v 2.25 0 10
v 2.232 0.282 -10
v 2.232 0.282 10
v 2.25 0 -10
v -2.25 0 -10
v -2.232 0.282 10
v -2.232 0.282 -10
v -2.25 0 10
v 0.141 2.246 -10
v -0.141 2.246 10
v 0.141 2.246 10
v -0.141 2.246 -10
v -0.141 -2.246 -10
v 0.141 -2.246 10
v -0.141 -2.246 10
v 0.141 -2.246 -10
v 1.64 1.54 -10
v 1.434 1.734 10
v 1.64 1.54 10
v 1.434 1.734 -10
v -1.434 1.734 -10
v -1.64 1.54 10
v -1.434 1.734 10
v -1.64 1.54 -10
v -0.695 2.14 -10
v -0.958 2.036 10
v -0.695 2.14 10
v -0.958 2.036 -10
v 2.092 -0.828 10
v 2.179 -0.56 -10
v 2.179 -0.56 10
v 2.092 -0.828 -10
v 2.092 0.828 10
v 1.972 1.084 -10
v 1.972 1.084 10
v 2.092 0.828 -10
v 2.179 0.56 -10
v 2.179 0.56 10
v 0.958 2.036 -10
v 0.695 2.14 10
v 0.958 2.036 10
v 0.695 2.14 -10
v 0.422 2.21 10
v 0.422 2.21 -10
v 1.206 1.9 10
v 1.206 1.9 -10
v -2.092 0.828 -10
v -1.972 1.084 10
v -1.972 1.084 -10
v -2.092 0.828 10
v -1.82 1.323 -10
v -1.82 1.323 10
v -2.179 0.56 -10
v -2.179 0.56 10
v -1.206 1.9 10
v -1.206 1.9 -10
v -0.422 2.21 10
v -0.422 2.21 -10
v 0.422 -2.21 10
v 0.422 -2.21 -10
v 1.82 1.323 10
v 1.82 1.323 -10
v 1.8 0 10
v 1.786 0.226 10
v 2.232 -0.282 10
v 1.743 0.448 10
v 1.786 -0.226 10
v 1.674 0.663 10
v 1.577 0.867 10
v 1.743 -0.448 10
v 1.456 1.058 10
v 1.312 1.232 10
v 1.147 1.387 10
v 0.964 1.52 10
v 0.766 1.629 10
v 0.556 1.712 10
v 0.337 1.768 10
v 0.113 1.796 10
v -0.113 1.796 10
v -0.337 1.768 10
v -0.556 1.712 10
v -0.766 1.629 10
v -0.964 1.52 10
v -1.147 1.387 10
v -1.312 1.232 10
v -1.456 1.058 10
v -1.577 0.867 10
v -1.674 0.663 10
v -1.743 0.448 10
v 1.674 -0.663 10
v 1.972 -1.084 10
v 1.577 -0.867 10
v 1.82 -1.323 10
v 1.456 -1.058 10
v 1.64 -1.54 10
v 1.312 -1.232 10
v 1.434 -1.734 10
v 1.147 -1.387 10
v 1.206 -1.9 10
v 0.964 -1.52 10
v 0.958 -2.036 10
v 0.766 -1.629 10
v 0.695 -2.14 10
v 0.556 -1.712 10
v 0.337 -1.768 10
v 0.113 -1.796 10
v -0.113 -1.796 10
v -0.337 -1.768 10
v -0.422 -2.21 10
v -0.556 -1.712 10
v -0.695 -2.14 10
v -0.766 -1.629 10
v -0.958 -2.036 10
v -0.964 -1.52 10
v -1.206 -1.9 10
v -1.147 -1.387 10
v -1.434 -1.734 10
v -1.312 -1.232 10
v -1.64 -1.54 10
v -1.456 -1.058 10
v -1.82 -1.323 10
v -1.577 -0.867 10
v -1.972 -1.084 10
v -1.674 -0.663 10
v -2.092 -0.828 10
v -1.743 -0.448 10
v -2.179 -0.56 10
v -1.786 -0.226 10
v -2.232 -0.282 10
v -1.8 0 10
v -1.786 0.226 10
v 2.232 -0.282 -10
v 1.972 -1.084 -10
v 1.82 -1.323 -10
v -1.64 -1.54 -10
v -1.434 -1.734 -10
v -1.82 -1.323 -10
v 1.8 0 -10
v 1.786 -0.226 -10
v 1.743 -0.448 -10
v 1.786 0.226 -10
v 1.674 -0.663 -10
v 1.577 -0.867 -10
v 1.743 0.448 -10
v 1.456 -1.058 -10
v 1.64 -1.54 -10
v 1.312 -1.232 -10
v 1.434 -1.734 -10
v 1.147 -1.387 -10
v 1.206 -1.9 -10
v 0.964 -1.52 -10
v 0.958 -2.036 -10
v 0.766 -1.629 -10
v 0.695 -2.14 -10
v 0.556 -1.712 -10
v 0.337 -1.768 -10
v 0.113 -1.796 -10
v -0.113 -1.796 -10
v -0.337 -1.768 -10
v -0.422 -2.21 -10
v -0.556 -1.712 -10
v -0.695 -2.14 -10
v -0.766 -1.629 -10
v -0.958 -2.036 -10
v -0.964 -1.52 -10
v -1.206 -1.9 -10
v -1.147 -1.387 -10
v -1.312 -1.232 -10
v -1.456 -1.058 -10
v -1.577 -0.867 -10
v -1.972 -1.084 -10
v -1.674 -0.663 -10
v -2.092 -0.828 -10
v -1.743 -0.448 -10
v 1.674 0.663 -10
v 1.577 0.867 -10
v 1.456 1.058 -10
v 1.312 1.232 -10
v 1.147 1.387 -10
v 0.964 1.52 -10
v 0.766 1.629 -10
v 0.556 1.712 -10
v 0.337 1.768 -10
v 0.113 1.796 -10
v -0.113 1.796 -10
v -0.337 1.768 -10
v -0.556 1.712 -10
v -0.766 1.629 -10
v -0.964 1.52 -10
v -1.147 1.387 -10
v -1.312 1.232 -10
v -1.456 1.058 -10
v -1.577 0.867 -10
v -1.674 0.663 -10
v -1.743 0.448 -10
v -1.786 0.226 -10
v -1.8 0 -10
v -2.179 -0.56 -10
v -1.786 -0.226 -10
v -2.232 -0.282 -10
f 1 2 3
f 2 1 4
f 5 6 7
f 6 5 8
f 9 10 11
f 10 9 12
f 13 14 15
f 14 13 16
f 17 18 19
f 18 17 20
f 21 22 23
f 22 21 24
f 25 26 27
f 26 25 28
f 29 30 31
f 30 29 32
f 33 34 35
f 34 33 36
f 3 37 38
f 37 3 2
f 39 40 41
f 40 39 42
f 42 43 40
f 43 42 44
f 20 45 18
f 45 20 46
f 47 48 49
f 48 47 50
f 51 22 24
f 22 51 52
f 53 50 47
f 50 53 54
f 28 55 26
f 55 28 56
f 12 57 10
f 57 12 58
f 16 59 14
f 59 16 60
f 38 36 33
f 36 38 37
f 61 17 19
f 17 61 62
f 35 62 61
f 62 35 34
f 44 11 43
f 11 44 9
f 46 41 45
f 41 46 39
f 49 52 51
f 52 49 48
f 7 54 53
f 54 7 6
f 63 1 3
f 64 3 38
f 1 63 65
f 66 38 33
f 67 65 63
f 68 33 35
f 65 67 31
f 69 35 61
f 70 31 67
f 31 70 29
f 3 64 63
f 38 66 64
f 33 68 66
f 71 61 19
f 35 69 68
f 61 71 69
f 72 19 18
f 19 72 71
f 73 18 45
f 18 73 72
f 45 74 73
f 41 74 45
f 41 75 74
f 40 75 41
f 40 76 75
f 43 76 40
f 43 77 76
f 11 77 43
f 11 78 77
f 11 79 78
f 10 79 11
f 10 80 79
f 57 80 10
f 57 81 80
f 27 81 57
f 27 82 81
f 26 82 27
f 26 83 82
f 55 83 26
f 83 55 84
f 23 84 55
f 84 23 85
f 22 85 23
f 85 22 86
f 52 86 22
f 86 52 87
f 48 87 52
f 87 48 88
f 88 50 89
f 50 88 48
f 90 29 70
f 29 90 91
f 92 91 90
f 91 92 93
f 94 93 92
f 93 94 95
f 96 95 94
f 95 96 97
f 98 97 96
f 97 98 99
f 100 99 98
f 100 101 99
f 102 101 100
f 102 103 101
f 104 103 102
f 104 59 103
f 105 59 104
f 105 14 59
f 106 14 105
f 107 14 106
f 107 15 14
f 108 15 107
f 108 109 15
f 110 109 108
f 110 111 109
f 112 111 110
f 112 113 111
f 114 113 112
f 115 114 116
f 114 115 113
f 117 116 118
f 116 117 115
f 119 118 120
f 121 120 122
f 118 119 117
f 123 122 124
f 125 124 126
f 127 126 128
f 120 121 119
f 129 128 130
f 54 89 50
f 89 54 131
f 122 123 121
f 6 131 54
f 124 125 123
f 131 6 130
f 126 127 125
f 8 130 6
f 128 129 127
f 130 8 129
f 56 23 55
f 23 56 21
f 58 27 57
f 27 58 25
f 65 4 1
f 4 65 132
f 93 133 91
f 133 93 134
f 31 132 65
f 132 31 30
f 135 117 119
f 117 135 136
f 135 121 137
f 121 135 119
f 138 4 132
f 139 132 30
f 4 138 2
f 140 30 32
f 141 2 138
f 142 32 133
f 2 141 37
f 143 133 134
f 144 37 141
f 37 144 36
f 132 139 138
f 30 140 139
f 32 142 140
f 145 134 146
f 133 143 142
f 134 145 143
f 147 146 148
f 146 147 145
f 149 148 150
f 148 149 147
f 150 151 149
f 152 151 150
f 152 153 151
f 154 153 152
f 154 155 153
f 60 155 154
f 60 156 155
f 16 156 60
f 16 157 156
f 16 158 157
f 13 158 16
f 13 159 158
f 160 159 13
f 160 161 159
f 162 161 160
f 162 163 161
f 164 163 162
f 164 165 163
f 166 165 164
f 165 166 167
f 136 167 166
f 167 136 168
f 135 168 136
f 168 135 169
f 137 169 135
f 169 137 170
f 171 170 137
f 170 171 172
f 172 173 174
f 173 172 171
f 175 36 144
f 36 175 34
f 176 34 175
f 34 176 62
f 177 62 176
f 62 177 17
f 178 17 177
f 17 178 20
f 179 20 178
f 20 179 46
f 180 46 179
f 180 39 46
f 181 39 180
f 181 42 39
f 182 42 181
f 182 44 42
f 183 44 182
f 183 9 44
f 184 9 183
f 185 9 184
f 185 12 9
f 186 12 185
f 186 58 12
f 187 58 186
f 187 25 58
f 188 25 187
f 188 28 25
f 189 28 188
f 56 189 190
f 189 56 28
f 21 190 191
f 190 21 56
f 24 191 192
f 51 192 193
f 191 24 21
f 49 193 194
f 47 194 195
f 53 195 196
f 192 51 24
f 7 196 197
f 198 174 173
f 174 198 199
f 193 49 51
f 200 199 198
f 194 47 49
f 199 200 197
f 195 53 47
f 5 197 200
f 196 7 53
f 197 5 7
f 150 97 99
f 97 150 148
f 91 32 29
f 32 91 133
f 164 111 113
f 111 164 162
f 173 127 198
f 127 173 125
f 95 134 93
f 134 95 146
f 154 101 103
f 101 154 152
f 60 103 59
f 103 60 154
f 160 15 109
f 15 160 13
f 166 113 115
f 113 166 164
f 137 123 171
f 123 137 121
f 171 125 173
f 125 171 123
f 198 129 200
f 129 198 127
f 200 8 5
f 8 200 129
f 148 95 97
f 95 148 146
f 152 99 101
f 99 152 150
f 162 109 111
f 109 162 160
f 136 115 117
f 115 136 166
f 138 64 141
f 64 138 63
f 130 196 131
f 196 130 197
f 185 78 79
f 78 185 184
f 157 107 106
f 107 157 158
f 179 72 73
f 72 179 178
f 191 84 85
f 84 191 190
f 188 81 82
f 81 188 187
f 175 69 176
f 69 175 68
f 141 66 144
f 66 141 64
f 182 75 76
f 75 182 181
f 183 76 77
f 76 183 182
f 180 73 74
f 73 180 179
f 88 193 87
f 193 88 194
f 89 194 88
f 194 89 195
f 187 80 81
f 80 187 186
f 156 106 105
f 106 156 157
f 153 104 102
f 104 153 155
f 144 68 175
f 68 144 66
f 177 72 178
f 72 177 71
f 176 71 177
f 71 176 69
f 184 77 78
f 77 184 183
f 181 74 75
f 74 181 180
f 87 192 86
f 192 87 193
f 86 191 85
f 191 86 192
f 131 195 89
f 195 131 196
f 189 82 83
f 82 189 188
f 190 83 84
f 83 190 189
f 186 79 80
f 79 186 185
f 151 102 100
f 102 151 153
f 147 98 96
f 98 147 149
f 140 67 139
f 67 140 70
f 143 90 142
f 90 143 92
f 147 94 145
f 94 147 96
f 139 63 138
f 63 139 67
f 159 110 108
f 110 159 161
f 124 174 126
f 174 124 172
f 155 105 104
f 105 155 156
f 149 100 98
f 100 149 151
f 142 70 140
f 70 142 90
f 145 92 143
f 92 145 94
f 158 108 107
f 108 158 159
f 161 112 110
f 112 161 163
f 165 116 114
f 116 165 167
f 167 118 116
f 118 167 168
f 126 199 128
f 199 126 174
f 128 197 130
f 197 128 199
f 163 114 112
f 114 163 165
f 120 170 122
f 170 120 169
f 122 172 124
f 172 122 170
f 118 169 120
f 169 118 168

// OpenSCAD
$fn = 50;


difference() {
	union() {
		translate(v = [0, 0, -10.0000000000]) {
			cylinder(h = 20, r = 2.2500000000);
		}
	}
	union() {
		translate(v = [0, 0, -100.0000000000]) {
			cylinder(h = 200, r = 1.8000000000);
		}
	}
}
